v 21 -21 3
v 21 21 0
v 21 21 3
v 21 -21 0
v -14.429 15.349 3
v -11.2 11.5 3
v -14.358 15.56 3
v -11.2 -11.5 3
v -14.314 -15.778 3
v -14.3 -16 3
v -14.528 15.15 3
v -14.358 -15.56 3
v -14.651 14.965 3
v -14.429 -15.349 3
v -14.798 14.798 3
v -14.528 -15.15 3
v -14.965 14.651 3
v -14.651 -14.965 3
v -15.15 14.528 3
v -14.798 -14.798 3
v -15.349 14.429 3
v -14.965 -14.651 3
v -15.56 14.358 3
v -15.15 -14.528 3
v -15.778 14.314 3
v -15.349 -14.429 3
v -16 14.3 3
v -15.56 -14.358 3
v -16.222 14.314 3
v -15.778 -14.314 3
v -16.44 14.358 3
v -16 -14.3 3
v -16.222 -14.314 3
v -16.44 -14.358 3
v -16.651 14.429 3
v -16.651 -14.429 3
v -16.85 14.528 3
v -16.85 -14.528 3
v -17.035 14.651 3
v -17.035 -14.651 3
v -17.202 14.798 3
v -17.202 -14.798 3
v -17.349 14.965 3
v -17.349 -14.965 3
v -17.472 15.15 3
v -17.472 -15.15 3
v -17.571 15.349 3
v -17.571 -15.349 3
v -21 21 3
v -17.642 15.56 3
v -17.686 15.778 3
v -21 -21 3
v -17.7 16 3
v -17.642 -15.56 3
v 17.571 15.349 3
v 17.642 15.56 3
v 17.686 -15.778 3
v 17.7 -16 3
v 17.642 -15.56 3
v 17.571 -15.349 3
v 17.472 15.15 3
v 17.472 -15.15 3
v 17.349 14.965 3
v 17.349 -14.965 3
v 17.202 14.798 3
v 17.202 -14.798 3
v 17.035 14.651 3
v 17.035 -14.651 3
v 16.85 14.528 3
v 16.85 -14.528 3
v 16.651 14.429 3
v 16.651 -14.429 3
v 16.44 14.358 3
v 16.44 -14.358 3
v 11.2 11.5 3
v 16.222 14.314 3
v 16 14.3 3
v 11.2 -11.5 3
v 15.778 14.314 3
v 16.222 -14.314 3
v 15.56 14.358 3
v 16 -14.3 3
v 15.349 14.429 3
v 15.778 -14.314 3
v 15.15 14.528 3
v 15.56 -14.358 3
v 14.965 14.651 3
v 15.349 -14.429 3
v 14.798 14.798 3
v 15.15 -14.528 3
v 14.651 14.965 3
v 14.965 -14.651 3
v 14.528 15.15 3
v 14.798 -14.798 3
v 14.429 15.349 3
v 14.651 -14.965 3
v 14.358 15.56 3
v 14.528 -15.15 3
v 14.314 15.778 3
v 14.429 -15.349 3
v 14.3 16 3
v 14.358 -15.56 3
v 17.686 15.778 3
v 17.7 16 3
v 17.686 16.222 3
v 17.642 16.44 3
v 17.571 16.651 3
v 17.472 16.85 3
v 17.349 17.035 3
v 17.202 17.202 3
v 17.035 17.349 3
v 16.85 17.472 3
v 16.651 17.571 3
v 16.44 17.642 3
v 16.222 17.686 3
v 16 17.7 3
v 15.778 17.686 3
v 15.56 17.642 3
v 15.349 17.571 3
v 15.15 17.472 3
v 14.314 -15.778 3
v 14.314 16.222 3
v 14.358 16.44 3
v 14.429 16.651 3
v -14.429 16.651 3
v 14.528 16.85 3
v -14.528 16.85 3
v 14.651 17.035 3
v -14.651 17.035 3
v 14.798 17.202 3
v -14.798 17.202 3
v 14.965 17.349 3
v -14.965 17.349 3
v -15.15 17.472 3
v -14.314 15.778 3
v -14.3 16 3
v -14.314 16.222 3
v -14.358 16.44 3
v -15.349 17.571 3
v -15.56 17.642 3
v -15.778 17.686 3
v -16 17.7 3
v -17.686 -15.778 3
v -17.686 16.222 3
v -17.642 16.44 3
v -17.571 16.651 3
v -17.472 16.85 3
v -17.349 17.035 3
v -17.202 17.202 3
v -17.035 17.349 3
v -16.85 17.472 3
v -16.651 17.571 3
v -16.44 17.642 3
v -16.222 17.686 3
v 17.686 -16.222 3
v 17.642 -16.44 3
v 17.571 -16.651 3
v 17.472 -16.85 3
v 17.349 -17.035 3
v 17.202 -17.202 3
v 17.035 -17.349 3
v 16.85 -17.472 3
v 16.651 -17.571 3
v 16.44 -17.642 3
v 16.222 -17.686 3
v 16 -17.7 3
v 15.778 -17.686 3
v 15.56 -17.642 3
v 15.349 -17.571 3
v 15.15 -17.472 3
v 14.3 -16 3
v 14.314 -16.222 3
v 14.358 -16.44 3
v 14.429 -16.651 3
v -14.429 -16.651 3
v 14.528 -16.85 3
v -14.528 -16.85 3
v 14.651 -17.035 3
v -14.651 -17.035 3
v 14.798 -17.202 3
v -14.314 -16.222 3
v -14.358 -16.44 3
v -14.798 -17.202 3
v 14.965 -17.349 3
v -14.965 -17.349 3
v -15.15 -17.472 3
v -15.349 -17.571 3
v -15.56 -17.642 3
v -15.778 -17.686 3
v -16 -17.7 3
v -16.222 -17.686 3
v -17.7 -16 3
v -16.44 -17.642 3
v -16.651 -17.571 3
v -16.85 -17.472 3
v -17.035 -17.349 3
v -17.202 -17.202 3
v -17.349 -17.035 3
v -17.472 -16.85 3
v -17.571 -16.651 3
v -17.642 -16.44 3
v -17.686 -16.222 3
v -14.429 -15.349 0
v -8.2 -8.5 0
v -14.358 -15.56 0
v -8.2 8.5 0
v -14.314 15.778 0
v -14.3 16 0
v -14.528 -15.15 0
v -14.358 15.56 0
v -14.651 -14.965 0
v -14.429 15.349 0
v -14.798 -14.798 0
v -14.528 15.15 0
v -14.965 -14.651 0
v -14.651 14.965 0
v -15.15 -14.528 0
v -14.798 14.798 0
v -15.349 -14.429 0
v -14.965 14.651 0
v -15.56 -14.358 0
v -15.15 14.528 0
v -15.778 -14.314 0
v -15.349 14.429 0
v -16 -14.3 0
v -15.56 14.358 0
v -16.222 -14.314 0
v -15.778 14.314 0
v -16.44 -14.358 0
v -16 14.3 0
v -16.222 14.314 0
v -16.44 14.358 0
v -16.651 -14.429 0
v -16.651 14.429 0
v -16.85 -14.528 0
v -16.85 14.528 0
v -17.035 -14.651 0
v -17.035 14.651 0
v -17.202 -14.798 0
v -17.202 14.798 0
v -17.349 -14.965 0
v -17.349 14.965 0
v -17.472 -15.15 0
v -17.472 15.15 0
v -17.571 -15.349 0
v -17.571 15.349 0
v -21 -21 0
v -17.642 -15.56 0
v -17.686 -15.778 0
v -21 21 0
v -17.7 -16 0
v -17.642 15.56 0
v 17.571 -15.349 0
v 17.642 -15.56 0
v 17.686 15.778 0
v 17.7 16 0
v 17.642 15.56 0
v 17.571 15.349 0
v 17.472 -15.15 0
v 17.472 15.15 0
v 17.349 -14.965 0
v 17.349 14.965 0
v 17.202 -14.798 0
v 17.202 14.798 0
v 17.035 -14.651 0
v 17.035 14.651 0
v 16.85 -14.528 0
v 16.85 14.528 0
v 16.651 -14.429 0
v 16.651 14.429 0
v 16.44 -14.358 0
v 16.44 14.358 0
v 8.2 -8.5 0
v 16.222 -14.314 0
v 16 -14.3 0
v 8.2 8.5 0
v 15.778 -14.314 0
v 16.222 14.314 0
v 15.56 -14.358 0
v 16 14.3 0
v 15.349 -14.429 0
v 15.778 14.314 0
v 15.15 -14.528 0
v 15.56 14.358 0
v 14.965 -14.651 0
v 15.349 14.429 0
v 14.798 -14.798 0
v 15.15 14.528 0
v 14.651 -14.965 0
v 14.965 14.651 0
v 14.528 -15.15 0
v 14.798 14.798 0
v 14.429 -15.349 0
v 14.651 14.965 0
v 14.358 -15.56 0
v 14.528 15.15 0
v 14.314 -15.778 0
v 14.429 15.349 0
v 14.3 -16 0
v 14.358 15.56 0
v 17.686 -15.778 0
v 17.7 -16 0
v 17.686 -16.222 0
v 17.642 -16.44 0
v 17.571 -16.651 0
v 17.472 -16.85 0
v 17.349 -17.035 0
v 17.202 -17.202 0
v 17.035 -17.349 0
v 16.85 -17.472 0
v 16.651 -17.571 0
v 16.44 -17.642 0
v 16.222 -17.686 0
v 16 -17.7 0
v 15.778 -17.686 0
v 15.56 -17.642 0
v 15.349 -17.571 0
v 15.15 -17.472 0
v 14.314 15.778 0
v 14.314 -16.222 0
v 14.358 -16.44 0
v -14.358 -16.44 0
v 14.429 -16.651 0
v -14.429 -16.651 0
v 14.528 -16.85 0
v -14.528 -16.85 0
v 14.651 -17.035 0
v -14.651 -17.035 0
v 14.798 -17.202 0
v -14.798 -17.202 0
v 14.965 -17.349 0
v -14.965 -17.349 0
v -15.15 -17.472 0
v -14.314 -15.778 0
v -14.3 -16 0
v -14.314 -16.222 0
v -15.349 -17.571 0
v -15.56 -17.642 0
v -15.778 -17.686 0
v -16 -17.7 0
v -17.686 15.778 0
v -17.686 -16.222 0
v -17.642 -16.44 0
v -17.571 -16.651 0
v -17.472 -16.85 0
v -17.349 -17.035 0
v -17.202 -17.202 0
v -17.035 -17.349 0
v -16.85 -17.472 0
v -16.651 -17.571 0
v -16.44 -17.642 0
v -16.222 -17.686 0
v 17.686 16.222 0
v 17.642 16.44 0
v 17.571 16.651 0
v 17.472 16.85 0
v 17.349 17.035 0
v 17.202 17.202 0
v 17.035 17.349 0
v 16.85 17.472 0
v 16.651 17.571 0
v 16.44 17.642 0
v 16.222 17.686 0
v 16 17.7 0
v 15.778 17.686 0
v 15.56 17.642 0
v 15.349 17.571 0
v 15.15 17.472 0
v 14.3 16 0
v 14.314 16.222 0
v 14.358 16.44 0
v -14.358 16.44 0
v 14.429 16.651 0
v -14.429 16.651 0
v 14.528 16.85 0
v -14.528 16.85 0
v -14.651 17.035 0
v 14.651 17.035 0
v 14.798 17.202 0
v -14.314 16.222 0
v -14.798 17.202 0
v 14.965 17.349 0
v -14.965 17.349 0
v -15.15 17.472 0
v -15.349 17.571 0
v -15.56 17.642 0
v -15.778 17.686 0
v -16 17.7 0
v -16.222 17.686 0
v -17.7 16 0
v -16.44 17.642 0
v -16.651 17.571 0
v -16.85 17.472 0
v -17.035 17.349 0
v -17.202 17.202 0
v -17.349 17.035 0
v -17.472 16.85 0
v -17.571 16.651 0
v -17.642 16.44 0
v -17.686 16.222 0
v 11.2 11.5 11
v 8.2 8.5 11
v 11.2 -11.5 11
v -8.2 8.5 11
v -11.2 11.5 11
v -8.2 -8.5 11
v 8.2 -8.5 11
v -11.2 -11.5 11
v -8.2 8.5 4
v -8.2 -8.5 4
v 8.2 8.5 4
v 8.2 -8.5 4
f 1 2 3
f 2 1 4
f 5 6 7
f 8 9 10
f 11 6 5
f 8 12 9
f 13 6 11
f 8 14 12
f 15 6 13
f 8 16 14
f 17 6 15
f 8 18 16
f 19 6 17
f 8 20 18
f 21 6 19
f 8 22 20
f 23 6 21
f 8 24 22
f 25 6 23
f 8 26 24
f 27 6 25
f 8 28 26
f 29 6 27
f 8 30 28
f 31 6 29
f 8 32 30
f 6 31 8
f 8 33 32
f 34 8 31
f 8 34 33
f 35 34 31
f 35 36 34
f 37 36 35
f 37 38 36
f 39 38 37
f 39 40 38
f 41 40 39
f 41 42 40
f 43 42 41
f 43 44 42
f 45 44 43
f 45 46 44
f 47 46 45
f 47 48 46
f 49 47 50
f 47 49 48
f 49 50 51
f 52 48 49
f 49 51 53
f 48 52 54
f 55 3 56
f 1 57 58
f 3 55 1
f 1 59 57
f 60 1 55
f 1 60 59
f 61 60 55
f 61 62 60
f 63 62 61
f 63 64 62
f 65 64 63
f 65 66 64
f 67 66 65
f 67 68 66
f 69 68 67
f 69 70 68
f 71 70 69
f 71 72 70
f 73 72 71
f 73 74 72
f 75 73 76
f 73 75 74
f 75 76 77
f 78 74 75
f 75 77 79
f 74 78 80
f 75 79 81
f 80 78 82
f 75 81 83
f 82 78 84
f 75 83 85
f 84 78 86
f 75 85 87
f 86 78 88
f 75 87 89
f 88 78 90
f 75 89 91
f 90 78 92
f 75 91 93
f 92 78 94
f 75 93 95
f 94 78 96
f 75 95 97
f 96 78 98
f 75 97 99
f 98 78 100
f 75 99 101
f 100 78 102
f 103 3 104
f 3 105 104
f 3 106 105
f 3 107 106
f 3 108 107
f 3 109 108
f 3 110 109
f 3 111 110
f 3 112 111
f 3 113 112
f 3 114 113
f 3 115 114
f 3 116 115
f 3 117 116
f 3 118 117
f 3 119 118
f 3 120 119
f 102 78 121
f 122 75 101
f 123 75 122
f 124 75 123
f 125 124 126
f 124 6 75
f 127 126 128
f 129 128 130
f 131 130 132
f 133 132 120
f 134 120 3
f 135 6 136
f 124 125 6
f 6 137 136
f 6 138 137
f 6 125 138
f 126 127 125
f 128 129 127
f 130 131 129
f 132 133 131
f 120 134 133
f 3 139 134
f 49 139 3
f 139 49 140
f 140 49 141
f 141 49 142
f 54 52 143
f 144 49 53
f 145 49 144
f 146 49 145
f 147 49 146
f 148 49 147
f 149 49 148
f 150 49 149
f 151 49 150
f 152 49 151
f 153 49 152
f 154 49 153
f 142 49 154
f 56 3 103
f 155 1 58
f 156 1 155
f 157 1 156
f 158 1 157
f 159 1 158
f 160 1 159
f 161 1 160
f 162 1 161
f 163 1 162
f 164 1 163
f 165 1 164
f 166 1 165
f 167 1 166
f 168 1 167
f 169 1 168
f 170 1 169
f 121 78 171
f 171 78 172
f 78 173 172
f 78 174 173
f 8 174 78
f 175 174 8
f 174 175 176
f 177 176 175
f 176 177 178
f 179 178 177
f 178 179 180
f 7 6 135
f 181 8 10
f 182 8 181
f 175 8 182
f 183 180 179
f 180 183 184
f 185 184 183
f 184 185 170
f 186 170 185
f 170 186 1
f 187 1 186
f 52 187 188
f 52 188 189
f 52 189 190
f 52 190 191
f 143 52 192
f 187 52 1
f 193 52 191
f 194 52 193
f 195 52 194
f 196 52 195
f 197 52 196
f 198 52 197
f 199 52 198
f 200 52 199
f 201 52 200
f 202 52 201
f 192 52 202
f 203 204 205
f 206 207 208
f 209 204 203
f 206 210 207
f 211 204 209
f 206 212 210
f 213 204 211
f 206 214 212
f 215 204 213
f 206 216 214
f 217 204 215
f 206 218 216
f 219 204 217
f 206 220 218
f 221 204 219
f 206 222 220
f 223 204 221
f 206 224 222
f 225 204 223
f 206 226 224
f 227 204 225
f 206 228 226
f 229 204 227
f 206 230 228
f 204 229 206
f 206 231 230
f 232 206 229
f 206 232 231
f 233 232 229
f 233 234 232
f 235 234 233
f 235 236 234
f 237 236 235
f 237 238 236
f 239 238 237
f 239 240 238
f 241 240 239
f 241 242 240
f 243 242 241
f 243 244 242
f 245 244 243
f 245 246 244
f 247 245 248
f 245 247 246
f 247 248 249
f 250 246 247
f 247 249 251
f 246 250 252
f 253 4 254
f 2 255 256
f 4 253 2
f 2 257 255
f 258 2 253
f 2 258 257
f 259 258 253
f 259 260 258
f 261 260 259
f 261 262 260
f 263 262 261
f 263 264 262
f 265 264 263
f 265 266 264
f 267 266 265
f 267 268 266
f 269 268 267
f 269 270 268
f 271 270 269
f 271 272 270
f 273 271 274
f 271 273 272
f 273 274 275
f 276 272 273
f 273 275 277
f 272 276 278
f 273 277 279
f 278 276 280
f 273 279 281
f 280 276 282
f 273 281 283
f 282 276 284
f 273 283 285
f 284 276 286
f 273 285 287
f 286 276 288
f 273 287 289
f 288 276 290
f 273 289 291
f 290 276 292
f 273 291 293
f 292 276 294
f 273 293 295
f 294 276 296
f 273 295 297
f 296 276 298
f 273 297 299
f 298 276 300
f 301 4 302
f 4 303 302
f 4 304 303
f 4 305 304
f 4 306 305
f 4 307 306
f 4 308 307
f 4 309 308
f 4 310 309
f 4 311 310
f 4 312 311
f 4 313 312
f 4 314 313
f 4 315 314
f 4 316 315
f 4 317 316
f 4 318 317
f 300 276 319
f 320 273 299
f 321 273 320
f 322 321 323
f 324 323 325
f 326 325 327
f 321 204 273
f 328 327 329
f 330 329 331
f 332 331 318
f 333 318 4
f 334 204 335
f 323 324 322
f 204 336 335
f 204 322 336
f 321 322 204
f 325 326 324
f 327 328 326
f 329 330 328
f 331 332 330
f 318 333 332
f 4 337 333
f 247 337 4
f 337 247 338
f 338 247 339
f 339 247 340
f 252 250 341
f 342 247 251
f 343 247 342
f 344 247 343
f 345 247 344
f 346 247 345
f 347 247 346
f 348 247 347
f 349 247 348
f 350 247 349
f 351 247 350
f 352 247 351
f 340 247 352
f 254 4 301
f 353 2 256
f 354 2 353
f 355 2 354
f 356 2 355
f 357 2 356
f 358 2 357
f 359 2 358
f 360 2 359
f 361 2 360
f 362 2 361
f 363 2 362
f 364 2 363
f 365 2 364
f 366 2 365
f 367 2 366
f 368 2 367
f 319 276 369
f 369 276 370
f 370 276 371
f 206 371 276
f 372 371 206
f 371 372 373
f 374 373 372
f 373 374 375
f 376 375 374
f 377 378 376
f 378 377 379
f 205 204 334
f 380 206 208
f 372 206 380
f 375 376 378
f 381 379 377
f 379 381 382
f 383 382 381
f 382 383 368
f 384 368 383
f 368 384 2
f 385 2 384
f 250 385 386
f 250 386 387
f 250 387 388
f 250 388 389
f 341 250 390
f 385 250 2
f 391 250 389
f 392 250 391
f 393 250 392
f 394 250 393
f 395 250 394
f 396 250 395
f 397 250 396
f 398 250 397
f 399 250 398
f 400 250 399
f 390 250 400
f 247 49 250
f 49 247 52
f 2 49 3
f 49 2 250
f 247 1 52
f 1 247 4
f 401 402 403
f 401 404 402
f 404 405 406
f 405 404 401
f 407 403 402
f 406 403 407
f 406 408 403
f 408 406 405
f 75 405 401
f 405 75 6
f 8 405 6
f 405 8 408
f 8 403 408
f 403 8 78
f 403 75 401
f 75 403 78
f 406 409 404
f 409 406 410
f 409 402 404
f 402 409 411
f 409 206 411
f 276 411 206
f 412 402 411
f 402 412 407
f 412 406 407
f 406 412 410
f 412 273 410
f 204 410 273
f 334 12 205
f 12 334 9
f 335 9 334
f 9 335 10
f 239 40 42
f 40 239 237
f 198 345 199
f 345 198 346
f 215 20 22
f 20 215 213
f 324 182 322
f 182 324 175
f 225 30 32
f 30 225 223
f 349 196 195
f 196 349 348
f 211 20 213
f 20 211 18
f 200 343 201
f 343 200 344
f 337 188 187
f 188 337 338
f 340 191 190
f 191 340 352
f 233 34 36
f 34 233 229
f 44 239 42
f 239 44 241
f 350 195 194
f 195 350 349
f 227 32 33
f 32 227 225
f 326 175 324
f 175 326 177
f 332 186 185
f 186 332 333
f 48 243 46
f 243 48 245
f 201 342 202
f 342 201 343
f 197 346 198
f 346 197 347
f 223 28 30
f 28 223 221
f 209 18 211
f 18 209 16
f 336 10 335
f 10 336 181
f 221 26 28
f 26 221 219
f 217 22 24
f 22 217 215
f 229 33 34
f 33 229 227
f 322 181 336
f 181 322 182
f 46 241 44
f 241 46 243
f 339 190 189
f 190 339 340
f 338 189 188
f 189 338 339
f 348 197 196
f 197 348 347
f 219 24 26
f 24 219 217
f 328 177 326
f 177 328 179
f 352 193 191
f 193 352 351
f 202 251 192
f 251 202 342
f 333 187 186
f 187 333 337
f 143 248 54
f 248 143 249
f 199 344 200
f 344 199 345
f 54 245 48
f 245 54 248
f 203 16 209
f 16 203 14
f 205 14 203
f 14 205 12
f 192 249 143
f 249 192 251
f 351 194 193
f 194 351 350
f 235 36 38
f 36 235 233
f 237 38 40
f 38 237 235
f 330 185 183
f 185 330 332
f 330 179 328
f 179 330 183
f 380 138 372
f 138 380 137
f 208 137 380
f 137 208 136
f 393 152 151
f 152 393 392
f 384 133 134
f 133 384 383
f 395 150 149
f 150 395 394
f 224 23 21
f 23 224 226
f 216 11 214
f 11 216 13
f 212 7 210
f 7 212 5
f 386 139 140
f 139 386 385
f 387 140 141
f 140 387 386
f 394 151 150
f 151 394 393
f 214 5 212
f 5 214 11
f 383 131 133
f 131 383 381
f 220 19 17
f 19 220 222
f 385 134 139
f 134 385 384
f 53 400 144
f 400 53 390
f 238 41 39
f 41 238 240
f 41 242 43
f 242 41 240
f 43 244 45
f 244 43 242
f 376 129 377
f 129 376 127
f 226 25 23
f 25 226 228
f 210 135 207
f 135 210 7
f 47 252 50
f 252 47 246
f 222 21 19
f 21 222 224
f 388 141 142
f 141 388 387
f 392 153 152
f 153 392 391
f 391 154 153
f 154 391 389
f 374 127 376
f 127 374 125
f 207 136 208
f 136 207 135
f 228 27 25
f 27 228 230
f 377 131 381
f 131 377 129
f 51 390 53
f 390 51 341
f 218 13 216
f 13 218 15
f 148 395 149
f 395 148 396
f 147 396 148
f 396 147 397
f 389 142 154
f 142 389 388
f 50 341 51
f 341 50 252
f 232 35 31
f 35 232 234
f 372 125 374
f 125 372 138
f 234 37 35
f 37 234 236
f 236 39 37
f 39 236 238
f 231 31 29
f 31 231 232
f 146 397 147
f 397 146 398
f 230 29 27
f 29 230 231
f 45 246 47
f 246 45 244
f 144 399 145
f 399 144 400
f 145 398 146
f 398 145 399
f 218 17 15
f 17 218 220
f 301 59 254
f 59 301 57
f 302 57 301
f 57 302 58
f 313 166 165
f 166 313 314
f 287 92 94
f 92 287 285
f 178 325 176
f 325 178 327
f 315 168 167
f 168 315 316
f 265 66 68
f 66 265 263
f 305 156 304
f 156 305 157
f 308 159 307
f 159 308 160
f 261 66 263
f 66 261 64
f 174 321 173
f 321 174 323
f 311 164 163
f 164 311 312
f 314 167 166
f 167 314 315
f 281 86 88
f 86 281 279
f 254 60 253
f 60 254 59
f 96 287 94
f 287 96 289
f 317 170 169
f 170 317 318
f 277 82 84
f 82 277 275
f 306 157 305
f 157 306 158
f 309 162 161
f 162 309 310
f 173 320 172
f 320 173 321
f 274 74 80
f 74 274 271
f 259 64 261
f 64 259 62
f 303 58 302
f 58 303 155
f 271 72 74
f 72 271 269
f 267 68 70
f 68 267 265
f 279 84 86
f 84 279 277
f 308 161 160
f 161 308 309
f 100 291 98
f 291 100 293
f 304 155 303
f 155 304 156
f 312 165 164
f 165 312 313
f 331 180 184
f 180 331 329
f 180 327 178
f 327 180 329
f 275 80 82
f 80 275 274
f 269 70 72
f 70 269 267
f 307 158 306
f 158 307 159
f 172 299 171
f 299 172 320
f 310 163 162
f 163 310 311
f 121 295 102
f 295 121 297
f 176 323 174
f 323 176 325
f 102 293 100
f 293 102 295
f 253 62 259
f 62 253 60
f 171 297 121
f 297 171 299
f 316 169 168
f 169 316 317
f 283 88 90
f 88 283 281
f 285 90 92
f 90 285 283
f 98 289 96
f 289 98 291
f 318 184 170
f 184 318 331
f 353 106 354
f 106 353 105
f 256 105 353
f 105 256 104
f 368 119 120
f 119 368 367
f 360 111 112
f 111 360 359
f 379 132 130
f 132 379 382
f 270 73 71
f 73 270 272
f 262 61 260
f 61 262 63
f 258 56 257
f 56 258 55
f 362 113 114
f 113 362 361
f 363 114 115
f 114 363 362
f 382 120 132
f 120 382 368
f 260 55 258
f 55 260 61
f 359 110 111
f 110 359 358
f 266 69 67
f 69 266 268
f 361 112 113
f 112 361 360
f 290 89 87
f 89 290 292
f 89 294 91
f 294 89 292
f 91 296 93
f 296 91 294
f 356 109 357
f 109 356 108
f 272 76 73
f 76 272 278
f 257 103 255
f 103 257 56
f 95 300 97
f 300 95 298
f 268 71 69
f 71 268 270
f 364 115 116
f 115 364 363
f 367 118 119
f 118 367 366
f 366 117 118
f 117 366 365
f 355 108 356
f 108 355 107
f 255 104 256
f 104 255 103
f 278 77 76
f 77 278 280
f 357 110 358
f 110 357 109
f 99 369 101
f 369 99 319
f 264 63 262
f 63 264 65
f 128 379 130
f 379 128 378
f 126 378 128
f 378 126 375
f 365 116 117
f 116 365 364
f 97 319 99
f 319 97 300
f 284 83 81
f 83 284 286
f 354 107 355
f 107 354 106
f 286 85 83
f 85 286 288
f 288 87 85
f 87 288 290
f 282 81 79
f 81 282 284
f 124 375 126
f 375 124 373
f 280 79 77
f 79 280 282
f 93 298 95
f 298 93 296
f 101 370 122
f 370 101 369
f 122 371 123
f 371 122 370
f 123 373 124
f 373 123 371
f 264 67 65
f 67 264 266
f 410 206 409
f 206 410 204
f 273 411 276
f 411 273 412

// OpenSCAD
// file: measurements.scad
// BASTION printed parts — shared measurements
// ============================================
// MEASURE YOUR ACTUAL DEVICES WITH CALIPERS and update the PLACEHOLDER
// values before printing anything. Every part file includes this file.
// All dimensions in mm. Device boxes are [length, width, height].

// -- global fit tuning --
fit     = 0.6;   // pocket clearance per side (0.4 tight .. 0.8 loose)
wall    = 3;     // fence/pocket wall thickness
fence_h = 14;    // how tall the pocket fences stand above the tray

// -- devices (PLACEHOLDERS — measure yours) --
mini_pc = [127, 127, 45];   // typical N100 box; measure your unit
router  = [102,  68, 24];   // GL.iNet — measure your model
buck    = [ 66,  46, 26];   // buck-boost converter incl. heatsink
usb_hub = [ 95,  35, 18];   // powered USB hub

// -- deck tray --
deck = [360, 180, 4];       // tray length, width, base thickness
                            // must fit YOUR case interior — measure first

// -- small parts --
pp_cut   = [16.4, 17.0];    // Powerpole PP15/45 pair cutout — verify against
                            // your snapped-together housings before printing
cable_d  = 7;               // cable bundle diameter for cable_clip
bore_d   = 8;               // gland_plug shaft dia — match the wire size your
                            // spare gland is sized to clamp
// main file
// Anderson Powerpole panel mount (PP15/45 pair)
// Bolts over a rectangular hole in the case wall or a bulkhead plate; the
// snapped-together housing pair slides in from behind, the collar keeps it
// square. Verify pp_cut against your actual housings — brands vary slightly.
// Print flat, ASA, 6 perimeters / 50% infill (it lives at the wall).

include <measurements.scad>
$fn = 48;

plate       = [42, 42, 3];
collar_h    = 8;
collar_wall = 3;
hole_d      = 3.4;   // M3 clearance
hole_inset  = 5;

difference() {
    union() {
        translate([0, 0, plate[2]/2]) cube(plate, center=true);
        translate([0, 0, plate[2]])
            linear_extrude(collar_h)
                difference() {
                    square([pp_cut[0] + 2*collar_wall, pp_cut[1] + 2*collar_wall], center=true);
                    square(pp_cut, center=true);
                }
    }
    translate([0, 0, -1]) linear_extrude(plate[2] + 2) square(pp_cut, center=true);
    for (sx = [-1, 1], sy = [-1, 1])
        translate([sx*(plate[0]/2 - hole_inset), sy*(plate[1]/2 - hole_inset), -1])
            cylinder(h = plate[2] + 2, d = hole_d);
}
